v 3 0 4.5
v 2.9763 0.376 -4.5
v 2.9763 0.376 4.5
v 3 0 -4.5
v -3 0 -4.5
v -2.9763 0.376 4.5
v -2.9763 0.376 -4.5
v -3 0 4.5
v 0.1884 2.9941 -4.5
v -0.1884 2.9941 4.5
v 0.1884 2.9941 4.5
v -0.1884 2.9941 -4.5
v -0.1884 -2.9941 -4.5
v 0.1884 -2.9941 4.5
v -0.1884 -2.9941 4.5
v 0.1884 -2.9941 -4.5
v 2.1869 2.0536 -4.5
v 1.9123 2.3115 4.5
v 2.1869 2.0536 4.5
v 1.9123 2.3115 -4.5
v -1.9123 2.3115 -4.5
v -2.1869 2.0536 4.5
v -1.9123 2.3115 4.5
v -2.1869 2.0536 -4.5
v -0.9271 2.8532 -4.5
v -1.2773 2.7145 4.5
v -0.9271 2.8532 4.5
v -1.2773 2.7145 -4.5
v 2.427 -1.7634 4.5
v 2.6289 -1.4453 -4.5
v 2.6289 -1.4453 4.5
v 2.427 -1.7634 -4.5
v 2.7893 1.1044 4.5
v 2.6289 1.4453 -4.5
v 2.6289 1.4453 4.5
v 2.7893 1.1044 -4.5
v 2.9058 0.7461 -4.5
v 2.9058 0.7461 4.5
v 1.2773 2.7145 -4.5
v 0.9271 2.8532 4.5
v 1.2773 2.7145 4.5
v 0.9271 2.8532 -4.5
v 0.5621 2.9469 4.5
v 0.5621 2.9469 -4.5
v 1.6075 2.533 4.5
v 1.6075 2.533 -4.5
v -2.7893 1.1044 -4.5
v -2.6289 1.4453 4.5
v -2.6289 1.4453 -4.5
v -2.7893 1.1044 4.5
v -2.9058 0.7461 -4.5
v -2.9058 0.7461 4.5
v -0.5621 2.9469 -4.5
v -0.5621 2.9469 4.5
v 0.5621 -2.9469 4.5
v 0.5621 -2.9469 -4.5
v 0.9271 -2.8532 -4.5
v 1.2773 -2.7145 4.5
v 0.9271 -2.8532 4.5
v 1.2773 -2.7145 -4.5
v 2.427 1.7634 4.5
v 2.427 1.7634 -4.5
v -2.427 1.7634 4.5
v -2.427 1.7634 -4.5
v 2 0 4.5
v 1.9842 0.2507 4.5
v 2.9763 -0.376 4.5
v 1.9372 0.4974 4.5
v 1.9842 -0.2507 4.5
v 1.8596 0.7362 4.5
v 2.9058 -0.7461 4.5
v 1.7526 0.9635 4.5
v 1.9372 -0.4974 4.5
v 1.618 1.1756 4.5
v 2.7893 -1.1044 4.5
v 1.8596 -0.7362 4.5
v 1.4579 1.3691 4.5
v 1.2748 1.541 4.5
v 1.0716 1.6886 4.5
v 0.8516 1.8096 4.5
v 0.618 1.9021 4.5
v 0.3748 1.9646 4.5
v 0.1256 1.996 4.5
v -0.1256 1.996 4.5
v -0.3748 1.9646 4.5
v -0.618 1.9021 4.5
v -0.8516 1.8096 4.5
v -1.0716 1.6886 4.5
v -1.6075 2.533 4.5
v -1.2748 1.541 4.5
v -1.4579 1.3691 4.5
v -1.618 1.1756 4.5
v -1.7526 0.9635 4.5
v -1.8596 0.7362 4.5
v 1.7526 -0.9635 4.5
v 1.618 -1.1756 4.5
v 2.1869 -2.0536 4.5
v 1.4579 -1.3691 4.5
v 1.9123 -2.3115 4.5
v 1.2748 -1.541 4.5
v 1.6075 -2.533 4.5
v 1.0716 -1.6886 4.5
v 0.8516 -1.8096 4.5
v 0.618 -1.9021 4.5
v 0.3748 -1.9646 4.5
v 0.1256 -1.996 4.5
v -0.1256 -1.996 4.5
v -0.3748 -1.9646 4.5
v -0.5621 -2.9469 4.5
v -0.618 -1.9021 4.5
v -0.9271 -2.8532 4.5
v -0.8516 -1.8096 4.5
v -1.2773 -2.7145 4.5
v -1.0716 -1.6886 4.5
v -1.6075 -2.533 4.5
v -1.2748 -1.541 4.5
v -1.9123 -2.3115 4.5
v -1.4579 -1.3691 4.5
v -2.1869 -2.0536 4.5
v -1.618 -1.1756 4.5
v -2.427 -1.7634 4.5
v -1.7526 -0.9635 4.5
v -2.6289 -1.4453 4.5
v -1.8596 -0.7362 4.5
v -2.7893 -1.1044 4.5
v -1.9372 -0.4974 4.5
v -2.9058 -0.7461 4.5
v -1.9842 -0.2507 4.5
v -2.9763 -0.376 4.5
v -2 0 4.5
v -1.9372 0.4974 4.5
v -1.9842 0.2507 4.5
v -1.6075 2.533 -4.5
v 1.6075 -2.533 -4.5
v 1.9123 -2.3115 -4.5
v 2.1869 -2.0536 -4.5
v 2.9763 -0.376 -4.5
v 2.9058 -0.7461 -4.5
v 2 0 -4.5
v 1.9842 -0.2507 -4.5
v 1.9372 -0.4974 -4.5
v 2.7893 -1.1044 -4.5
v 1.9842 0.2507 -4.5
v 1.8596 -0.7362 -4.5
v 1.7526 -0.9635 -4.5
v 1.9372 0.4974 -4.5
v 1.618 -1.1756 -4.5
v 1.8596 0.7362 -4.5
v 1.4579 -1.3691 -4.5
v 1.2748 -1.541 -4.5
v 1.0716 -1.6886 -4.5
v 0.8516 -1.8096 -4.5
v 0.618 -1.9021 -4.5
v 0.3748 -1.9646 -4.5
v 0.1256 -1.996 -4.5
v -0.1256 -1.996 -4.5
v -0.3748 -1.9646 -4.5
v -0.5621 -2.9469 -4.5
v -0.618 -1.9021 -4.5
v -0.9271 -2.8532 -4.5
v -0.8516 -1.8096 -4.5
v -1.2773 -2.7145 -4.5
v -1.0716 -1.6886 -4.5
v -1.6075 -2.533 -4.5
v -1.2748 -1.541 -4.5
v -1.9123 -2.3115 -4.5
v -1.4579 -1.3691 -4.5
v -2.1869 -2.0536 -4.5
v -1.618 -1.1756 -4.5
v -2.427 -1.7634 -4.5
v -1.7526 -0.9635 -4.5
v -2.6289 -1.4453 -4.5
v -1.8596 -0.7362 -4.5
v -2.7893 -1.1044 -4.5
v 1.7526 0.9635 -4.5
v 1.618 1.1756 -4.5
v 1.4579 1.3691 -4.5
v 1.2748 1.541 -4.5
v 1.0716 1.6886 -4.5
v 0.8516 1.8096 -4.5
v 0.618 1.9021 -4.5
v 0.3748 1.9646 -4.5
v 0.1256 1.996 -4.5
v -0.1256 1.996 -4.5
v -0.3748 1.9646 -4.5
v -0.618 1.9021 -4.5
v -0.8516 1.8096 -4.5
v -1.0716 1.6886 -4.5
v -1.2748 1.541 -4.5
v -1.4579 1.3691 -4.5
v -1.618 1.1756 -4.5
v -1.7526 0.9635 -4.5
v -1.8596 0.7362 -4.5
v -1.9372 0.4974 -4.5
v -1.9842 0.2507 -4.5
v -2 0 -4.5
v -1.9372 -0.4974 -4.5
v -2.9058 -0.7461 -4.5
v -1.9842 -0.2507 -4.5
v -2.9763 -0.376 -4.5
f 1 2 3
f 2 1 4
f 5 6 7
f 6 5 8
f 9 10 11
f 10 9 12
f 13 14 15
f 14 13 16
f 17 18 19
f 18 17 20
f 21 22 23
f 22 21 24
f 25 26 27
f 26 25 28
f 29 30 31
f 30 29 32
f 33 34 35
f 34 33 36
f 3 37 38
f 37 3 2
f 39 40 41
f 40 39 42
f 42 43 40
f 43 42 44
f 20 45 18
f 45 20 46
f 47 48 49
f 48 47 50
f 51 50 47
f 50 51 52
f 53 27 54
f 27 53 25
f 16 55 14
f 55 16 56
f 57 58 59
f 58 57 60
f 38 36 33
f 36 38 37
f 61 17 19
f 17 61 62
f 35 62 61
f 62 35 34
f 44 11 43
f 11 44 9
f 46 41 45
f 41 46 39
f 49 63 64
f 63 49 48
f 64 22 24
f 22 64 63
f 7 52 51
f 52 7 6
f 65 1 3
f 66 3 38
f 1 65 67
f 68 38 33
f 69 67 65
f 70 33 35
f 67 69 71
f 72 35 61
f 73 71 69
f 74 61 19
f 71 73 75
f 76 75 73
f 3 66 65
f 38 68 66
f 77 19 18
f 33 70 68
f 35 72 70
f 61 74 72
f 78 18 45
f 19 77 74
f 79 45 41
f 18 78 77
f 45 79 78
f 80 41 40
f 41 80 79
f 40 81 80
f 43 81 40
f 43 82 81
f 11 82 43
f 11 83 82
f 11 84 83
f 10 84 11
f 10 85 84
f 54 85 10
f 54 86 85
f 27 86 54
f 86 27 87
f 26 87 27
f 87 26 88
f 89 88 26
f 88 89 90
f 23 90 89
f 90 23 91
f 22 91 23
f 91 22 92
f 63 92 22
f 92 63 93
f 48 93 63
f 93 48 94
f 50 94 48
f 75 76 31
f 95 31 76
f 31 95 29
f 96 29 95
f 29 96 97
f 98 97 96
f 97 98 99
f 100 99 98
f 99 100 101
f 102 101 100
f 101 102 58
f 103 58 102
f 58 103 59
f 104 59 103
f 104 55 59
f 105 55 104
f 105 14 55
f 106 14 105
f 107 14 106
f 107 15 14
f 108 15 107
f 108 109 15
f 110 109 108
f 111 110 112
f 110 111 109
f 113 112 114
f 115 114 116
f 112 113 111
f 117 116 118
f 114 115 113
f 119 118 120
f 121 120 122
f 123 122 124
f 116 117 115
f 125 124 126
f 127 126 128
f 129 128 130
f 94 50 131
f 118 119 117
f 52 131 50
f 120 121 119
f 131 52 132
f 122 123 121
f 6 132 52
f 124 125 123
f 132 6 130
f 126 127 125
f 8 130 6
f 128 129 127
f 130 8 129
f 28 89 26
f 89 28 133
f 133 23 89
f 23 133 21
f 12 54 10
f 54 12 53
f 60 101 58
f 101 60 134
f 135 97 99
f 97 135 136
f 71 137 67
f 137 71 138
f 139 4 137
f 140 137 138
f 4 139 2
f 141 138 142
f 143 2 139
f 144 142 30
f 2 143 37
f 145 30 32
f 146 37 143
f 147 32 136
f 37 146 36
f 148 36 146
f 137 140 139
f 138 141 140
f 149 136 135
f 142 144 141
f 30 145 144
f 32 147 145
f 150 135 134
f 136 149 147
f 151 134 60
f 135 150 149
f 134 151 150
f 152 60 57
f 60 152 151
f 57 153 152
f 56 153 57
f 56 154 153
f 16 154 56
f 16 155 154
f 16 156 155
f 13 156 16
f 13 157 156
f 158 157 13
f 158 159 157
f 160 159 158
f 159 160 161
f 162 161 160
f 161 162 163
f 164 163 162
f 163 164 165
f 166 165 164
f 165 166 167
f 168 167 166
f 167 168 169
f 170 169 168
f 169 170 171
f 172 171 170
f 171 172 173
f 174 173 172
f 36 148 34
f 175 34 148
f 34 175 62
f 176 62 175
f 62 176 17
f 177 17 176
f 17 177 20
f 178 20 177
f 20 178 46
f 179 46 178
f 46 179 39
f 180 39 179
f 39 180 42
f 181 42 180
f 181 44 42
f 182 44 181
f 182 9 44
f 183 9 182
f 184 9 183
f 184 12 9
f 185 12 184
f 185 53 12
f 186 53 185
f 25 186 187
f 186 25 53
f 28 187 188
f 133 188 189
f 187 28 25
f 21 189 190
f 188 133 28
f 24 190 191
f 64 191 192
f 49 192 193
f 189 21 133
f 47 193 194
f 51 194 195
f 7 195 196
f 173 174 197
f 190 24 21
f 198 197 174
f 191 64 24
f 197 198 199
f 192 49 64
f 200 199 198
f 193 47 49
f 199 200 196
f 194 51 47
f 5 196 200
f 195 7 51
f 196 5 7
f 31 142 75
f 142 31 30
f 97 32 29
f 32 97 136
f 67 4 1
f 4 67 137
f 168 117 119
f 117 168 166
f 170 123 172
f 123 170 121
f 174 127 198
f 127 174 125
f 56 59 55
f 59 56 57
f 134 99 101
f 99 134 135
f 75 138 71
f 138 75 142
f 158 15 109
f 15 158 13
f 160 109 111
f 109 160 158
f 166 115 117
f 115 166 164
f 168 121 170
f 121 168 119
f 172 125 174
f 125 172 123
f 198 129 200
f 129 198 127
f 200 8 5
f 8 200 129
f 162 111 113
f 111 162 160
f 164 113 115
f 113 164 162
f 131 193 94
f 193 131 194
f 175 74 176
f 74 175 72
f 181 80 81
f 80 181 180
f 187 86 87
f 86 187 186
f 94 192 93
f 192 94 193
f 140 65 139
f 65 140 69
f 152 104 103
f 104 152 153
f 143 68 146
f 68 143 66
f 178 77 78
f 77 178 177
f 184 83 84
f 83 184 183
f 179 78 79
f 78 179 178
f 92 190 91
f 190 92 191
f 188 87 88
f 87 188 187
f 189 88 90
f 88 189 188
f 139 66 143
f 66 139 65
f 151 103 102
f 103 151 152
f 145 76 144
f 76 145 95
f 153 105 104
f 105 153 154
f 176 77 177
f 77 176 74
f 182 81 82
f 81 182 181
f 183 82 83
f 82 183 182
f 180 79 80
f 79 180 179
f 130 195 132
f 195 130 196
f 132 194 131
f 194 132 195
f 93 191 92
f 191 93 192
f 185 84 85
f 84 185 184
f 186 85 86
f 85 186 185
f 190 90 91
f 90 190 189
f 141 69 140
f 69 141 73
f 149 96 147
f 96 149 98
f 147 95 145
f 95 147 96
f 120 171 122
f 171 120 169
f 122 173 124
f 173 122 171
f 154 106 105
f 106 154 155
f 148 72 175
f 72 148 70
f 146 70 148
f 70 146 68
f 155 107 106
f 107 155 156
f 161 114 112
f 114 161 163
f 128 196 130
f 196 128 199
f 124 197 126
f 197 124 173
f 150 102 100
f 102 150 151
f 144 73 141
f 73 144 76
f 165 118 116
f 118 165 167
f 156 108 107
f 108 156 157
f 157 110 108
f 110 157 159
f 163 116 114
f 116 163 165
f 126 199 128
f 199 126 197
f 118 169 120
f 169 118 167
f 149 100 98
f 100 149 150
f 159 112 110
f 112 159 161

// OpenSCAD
$fn = 50;


difference() {
	union() {
		translate(v = [0, 0, -4.5000000000]) {
			cylinder(h = 9, r = 3.0000000000);
		}
	}
	union() {
		translate(v = [0, 0, -100.0000000000]) {
			cylinder(h = 200, r = 2);
		}
	}
}
